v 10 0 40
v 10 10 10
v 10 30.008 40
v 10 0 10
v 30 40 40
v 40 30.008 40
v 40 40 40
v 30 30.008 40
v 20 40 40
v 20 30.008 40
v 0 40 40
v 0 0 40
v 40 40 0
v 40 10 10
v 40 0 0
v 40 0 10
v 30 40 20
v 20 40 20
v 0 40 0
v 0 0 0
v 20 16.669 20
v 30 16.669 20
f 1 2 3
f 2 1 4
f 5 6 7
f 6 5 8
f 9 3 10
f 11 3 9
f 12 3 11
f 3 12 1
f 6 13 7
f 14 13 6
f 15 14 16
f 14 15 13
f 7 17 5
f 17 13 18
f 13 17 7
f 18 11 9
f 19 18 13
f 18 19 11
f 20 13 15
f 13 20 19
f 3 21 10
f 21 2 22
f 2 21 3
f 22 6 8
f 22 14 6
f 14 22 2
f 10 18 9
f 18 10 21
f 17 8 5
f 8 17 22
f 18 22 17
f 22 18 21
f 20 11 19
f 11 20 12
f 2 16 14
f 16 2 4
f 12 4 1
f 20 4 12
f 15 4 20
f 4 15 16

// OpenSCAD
cube([40,40,10]);
cube([10,40,40]);   

difference(){
difference(){
translate([10, 10, 0])
cube([30,30,40]);
translate([10, 10, 10])
rotate([56.3, 0, 0])
cube([30,50,40]);
}
translate([20, 10, 20])
cube([10,30,40]);
}
